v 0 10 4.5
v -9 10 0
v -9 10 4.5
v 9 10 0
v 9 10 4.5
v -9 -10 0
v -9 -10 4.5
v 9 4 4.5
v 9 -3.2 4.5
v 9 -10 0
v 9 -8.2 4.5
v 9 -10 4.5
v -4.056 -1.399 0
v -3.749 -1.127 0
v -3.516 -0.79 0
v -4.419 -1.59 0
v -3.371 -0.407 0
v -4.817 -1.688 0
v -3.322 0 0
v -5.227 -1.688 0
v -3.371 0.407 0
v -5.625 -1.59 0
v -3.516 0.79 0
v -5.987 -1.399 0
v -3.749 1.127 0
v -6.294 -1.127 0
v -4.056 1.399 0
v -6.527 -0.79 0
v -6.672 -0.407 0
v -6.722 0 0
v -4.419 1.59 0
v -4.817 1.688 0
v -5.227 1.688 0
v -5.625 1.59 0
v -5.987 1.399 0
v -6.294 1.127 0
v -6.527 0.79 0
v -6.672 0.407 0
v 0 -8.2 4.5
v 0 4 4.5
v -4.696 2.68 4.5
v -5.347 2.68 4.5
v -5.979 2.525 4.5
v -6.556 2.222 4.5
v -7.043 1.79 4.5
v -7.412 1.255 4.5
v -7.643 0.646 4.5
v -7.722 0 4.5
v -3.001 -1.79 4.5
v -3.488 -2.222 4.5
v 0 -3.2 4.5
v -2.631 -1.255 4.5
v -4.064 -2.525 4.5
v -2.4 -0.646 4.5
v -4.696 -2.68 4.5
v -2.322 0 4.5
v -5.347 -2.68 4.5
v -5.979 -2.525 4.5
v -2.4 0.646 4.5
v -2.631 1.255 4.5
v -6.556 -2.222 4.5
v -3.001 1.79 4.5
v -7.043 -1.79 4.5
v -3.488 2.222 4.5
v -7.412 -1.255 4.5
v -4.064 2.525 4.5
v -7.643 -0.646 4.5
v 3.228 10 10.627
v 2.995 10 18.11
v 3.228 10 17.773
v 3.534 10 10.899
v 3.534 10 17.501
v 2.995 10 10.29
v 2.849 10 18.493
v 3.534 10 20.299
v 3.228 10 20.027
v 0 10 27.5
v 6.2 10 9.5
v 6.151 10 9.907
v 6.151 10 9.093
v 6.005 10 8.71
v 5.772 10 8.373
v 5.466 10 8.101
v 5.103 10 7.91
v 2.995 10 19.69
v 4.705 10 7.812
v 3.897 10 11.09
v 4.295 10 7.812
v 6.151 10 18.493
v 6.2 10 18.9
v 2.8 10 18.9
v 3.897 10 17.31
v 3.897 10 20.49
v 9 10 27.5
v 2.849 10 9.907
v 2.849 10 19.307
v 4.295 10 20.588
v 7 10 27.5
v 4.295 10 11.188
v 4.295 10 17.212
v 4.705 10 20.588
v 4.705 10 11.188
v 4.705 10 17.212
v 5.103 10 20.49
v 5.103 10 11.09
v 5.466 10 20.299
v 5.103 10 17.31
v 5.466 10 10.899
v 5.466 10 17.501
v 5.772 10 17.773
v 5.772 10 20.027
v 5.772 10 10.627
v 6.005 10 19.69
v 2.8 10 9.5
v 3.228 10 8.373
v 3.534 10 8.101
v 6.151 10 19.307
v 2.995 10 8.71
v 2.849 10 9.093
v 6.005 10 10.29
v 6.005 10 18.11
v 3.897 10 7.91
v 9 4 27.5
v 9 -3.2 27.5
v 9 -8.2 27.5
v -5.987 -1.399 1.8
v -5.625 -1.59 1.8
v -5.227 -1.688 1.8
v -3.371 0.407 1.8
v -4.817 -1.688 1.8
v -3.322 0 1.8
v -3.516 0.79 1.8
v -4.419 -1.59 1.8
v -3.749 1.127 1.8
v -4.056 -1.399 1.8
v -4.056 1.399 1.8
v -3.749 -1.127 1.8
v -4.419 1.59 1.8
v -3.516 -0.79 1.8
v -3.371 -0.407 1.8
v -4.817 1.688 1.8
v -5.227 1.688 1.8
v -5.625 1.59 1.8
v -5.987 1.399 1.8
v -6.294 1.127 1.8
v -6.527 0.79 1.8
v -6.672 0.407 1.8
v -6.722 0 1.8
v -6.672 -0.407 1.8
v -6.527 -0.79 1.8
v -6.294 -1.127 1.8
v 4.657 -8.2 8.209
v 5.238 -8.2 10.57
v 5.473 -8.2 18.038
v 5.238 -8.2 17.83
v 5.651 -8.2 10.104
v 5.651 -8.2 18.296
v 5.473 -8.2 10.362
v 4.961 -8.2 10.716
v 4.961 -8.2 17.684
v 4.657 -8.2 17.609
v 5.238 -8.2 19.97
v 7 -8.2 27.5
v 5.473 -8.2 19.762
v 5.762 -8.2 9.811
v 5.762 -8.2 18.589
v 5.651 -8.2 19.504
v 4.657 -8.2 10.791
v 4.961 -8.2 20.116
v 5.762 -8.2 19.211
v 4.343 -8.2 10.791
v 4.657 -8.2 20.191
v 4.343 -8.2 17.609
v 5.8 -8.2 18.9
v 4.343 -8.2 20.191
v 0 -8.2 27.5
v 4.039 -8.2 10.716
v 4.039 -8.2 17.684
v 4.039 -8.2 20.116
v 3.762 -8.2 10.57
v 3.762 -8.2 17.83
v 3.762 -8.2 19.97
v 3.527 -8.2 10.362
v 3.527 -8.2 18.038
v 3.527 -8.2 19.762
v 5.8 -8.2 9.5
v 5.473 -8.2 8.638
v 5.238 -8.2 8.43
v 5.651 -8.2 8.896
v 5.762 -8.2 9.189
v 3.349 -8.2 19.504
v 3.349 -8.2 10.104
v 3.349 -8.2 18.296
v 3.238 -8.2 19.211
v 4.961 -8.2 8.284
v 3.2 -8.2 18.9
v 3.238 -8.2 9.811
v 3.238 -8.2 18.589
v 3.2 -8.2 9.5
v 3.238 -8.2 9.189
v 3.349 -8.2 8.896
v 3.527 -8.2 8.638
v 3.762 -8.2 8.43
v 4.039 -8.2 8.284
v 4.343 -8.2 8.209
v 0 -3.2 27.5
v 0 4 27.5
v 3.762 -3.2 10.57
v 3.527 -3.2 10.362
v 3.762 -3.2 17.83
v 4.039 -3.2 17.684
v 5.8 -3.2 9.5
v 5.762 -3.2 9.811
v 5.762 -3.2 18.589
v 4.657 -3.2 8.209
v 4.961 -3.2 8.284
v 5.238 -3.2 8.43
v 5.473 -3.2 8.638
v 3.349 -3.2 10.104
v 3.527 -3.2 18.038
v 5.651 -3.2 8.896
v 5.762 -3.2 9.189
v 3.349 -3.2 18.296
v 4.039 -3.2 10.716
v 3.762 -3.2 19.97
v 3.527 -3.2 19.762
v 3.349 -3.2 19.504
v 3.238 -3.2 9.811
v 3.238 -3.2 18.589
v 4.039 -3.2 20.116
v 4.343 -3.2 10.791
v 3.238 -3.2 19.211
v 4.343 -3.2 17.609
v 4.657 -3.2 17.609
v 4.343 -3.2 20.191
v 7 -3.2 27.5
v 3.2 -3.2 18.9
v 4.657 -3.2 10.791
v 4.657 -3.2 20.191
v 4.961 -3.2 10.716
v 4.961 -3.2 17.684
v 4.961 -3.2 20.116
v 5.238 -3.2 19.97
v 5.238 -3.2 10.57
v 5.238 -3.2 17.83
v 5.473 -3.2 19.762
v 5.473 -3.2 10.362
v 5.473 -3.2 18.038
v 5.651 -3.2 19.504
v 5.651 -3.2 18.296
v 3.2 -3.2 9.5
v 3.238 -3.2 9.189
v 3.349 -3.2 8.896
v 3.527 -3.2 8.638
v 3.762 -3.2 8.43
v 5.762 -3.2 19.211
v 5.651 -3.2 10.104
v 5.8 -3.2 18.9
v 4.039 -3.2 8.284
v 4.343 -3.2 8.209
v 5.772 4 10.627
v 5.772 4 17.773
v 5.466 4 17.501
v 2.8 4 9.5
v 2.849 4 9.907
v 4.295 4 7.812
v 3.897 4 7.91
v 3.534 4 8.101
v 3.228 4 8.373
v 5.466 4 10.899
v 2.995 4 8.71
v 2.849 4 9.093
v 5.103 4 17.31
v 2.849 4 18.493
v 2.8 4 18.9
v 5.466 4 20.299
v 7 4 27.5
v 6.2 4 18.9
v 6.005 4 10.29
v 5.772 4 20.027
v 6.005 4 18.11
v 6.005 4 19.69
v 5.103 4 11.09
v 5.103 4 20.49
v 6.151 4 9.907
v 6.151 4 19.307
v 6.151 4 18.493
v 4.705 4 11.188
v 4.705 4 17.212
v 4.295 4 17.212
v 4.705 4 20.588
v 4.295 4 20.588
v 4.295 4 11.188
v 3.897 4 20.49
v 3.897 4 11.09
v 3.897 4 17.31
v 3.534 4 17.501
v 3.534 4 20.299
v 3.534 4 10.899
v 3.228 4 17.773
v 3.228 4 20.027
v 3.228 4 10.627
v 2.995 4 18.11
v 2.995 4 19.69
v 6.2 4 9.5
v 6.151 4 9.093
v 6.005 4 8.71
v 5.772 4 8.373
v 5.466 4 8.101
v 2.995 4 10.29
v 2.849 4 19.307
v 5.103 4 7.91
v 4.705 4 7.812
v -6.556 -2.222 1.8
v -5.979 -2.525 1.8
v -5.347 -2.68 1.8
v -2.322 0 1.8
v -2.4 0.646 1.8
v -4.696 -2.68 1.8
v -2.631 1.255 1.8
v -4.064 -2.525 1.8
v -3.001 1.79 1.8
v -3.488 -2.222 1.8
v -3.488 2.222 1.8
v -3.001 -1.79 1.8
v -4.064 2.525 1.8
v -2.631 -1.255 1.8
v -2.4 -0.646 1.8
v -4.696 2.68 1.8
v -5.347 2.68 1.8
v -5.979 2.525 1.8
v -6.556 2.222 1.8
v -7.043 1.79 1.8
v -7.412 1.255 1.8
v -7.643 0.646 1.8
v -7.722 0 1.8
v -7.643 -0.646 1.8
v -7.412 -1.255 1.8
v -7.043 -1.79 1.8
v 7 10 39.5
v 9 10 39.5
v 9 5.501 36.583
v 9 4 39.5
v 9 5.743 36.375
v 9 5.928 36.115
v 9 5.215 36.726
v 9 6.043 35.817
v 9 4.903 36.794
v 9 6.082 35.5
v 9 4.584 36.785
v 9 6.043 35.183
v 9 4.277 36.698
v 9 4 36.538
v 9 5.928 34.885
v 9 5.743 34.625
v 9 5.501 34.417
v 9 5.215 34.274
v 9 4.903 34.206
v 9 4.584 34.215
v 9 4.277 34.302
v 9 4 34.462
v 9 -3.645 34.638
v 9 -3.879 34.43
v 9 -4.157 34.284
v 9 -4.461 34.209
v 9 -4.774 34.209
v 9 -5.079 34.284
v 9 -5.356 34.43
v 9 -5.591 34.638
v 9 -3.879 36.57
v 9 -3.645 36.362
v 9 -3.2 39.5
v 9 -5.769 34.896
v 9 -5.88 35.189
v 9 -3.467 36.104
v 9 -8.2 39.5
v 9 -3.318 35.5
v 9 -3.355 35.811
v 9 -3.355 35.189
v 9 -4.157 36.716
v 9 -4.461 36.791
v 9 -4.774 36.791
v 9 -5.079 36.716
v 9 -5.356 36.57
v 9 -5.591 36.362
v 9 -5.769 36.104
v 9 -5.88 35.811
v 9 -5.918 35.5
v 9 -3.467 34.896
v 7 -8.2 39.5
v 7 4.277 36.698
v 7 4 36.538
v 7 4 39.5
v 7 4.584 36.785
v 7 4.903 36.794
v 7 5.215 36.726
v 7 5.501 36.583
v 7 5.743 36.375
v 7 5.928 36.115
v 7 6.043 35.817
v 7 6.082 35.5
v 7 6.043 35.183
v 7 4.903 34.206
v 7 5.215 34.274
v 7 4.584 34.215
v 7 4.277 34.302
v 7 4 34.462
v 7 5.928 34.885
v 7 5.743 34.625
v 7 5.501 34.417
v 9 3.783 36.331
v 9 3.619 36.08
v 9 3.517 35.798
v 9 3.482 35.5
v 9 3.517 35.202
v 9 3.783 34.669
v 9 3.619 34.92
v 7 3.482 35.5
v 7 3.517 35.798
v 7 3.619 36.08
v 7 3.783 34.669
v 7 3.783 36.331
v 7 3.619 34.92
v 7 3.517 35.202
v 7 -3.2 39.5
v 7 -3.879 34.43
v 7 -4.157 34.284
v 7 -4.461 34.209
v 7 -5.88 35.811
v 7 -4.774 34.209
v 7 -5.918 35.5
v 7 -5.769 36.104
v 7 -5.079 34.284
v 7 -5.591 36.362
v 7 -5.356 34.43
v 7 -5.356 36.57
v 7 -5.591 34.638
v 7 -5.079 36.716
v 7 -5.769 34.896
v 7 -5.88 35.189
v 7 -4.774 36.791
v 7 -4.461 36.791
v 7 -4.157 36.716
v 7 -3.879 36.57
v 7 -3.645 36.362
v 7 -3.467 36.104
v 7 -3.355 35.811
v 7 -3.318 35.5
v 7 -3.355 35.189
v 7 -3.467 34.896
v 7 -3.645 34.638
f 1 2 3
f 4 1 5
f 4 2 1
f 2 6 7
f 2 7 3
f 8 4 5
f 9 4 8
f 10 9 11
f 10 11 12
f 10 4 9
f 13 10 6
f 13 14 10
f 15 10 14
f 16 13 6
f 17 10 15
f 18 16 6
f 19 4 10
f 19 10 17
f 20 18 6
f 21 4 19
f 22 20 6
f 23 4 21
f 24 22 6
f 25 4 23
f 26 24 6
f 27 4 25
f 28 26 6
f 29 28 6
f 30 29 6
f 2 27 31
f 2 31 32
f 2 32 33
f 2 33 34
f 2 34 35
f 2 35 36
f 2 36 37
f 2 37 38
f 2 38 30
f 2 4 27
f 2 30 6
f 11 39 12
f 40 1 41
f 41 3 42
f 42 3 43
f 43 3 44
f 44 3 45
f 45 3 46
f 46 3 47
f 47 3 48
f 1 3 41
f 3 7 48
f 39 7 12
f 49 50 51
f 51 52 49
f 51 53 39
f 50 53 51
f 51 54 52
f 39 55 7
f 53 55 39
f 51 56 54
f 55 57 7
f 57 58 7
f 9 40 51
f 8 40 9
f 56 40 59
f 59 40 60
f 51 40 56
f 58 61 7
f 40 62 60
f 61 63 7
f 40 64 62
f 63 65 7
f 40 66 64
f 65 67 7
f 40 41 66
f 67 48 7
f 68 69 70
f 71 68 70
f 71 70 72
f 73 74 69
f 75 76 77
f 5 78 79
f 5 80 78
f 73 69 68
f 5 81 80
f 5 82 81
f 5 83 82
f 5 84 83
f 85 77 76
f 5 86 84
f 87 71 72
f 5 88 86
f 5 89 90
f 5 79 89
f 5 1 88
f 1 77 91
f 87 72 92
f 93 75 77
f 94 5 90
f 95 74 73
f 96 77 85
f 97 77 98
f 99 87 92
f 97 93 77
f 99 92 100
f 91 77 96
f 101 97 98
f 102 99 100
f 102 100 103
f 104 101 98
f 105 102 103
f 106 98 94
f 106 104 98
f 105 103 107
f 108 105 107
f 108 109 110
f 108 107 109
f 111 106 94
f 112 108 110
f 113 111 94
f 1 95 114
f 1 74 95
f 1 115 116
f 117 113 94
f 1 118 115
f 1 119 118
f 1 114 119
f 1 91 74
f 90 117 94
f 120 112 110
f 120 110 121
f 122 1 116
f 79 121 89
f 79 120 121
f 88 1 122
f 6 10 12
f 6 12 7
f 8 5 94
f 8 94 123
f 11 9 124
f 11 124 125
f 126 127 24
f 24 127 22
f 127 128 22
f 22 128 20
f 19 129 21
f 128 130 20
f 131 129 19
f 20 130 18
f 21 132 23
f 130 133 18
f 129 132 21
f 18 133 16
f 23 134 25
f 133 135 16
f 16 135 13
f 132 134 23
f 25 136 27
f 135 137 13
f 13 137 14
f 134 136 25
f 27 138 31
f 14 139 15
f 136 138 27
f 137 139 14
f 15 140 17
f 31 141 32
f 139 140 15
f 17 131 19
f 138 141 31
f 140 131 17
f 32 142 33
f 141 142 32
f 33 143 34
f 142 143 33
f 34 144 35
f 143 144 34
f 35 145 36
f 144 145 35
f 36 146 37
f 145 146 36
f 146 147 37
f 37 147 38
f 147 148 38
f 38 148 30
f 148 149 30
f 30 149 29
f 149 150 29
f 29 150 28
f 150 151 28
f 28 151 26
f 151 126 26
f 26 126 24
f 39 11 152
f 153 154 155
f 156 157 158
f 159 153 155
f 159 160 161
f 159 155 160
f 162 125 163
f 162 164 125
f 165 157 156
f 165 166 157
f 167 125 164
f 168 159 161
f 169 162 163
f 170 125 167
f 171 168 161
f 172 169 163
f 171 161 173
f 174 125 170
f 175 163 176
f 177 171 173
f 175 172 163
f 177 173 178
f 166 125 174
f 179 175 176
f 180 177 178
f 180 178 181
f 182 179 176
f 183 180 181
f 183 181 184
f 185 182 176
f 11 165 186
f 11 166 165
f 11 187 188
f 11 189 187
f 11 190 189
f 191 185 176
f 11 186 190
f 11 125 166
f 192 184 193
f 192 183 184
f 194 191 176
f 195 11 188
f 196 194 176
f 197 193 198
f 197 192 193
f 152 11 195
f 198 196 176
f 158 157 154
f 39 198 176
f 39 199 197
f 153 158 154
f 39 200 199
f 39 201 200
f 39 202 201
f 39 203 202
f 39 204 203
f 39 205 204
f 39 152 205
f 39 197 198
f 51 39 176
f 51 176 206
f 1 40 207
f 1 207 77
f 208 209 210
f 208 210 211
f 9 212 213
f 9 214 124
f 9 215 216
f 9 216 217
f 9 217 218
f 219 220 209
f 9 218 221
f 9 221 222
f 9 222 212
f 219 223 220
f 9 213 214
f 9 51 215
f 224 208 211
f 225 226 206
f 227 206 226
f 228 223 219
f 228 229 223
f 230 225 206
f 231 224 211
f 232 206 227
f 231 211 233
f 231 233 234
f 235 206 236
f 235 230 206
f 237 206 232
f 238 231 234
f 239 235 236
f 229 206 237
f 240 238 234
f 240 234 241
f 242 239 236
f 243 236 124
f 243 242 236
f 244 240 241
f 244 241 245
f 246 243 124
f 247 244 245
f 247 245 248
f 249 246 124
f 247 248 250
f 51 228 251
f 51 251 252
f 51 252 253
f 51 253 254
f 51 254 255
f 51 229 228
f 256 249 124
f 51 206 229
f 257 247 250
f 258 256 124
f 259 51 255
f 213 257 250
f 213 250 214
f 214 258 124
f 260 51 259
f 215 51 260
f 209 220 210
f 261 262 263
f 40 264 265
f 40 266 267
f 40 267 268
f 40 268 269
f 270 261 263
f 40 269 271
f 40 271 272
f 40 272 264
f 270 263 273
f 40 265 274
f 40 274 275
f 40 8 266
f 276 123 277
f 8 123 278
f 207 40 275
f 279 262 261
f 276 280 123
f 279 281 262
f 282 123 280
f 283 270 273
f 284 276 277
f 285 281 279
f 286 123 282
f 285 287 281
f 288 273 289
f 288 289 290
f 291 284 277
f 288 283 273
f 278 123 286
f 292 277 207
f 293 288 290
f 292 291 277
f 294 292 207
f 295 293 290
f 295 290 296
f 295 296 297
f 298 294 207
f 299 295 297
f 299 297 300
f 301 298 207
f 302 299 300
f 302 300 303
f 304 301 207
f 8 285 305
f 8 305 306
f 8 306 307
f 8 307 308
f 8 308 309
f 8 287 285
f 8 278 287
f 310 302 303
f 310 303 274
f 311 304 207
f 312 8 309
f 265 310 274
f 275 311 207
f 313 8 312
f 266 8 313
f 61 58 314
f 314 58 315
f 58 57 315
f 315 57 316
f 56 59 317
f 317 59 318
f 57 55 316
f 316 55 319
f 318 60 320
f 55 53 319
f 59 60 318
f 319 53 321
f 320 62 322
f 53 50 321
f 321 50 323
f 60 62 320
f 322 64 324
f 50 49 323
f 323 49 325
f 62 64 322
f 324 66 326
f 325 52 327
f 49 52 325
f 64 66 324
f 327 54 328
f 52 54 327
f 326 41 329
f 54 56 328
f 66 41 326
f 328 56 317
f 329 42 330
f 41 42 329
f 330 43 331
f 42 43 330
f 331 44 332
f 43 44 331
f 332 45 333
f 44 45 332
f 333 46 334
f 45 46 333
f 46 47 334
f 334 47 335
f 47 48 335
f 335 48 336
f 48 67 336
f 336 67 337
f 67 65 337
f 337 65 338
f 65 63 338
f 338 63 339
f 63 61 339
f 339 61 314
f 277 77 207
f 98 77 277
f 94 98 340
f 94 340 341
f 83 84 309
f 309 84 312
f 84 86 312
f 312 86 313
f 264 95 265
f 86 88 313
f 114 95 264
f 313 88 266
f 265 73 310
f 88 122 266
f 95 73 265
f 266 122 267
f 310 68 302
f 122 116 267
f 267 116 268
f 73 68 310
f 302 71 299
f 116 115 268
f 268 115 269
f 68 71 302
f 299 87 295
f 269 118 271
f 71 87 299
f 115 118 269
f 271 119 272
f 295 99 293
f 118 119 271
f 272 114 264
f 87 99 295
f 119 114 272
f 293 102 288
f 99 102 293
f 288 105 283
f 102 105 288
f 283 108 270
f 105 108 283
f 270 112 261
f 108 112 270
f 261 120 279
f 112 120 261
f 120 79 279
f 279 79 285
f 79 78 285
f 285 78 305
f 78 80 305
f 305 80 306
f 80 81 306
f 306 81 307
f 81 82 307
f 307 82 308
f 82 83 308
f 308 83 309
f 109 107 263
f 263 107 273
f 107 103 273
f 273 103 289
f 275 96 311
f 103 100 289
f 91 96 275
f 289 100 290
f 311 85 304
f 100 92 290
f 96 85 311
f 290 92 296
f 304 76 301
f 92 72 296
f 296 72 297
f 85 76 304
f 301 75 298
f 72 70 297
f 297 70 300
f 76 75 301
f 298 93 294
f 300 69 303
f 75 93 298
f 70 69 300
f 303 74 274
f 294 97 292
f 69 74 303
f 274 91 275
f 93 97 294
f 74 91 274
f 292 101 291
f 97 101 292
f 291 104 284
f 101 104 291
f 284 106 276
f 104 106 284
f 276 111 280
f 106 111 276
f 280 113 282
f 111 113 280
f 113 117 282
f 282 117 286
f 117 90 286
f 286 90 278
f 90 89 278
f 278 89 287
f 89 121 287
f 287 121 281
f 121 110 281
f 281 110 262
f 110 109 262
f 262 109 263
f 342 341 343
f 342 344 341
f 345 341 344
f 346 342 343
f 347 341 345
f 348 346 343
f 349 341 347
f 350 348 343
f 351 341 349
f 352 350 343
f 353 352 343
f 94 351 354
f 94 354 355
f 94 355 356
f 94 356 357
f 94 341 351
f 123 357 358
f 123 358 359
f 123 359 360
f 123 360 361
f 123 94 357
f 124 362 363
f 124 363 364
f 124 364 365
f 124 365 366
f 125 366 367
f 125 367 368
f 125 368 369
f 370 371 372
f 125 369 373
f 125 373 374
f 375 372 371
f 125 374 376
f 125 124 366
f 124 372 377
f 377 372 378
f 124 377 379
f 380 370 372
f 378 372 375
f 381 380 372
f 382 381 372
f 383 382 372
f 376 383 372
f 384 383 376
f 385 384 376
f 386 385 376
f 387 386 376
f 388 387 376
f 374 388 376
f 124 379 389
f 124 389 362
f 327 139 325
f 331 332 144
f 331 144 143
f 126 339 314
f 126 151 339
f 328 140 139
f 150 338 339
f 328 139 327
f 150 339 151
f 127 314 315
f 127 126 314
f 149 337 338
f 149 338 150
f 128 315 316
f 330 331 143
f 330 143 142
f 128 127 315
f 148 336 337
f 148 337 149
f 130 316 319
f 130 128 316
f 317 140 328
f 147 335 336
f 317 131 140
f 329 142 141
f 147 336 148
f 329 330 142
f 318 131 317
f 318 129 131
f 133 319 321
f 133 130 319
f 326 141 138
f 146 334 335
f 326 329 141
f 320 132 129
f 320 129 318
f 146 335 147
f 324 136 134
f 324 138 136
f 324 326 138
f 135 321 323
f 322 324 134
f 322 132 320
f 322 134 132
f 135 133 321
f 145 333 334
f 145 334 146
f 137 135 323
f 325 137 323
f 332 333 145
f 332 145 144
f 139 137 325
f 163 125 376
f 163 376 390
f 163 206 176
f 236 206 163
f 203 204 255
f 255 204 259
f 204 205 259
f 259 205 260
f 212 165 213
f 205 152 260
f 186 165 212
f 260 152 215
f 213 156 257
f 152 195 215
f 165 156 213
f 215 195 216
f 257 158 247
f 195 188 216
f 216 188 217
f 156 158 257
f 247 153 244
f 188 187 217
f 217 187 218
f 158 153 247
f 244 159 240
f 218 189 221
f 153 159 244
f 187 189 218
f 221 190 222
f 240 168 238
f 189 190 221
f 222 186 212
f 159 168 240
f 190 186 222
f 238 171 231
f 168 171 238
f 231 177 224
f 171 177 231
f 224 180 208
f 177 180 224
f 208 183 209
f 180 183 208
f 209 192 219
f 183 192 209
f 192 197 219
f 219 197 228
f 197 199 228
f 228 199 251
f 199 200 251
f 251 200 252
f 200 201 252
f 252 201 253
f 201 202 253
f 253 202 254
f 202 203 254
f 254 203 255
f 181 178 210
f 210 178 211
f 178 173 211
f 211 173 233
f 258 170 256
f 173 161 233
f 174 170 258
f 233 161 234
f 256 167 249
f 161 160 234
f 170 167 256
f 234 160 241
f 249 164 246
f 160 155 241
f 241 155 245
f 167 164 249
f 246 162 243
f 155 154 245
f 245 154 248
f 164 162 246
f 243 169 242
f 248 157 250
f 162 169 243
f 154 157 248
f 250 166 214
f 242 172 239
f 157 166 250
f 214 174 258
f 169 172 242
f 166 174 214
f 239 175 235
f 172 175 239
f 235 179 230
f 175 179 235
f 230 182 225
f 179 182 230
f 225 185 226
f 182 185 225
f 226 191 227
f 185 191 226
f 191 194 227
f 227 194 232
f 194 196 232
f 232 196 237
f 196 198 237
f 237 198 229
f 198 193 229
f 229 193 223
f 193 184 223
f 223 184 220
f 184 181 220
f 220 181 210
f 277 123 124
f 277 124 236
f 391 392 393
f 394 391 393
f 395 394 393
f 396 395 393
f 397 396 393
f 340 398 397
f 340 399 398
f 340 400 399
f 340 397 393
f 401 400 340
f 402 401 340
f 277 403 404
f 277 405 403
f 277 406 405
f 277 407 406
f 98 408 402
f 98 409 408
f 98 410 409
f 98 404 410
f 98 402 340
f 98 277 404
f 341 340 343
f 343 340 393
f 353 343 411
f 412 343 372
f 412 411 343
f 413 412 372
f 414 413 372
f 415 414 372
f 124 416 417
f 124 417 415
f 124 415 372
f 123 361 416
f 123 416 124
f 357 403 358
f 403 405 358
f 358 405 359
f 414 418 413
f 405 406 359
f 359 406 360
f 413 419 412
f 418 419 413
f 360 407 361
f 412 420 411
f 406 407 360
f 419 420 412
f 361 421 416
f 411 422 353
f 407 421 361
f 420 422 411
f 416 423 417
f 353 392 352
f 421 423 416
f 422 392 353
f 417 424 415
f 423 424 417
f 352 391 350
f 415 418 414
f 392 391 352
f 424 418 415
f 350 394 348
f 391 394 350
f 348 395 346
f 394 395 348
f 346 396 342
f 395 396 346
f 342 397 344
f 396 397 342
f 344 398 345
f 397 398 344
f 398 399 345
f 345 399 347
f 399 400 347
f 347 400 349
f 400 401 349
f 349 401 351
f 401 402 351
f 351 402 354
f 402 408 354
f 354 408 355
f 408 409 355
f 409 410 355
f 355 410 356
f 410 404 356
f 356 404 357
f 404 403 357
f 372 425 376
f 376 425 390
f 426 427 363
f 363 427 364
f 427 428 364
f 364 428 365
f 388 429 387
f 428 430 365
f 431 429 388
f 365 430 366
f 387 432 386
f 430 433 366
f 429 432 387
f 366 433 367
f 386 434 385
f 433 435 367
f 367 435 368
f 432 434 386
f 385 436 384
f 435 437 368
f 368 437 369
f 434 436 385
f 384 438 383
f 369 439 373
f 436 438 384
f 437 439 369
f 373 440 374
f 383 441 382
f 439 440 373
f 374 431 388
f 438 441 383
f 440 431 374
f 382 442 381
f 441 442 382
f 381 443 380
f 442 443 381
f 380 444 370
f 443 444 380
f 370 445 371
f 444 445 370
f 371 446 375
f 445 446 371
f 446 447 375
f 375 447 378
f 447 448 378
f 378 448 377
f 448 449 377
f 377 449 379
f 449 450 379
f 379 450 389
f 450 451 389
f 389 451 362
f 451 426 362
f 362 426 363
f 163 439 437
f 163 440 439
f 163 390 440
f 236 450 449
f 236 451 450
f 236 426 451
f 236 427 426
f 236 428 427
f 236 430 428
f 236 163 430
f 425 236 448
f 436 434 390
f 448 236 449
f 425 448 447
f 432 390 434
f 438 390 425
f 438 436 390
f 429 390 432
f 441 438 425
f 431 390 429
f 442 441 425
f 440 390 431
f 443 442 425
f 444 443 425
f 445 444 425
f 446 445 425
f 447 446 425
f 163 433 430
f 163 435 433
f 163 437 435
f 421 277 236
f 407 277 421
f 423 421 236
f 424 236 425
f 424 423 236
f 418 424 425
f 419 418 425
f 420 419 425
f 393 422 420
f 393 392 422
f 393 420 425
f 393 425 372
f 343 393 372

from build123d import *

# Parameters (mm, degrees)
SKETCH_W        = 18
SKETCH_H        = 20
PAD_DEPTH       = 4.5
SKETCH001_W     = 9
SKETCH001_H     = 5
PAD001_DEPTH    = 23
SKETCH002_W     = 9
SKETCH002_H     = 6
PAD002_DEPTH    = 23
SKETCH004_W     = 2
SKETCH004_H     = 6
SKETCH004_H_2   = 5
PAD003_DEPTH    = 12
SKETCH005_R     = 1.3
POCKET_DEPTH    = 25
SKETCH007_W     = 2
SKETCH007_H     = 12
PAD004_DEPTH    = 7.2
SKETCH008_R     = 1.3
POCKET001_DEPTH = 5
COPYSKETCH009_R = 1.7
POCKET002_DEPTH = 5
SKETCH010_R     = 2.7
POCKET003_DEPTH = 2.7
SKETCH011_R     = 1.7
POCKET004_DEPTH = 7


with BuildPart() as part:
    # Sketch → Pad (new body)
    with BuildSketch(Plane.XY):
        Rectangle(SKETCH_W, SKETCH_H)
    extrude(amount=PAD_DEPTH)

    # Sketch001 (on Face6 of Pad) → Pad001 (join)
    with BuildSketch(Plane.XY.offset(4.5)):
        with Locations((4.5, -5.7)):
            Rectangle(SKETCH001_W, SKETCH001_H)
    extrude(amount=PAD001_DEPTH)

    # Sketch002 (on Face5 of Pad001) → Pad002 (join)
    with BuildSketch(Plane.XY.offset(4.5)):
        with Locations((4.5, 7)):
            Rectangle(SKETCH002_W, SKETCH002_H)
    extrude(amount=PAD002_DEPTH)

    # Sketch004 (on Face15 of Pad002) → Pad003 (join)
    with BuildSketch(Plane.XY.offset(27.5)):
        with Locations((8, 7)):
            Rectangle(SKETCH004_W, SKETCH004_H)
        with Locations((8, -5.7)):
            Rectangle(SKETCH004_W, SKETCH004_H_2)
    extrude(amount=PAD003_DEPTH)

    # Sketch005 (on Face10 of Pad003) → Pocket (cut)
    with BuildSketch(Plane.XZ.offset(8.2)):
        with Locations((4.5, 18.9)):
            Circle(SKETCH005_R)
        with Locations((4.5, 9.5)):
            Circle(SKETCH005_R)
    extrude(amount=-POCKET_DEPTH, mode=Mode.SUBTRACT)

    # Sketch007 → Pad004 (join)
    with BuildSketch(Plane.XZ.offset(-4)):
        with Locations((8, 33.5)):
            Rectangle(SKETCH007_W, SKETCH007_H)
    extrude(amount=PAD004_DEPTH)

    # Sketch008 (on Face31 of Pad004) → Pocket001 (cut)
    with BuildSketch(Plane(origin=(7, 0, 0), x_dir=(0, -1, 0), z_dir=(-1, 0, 0))):
        with Locations((-4.782348, 35.5)):
            Circle(SKETCH008_R)
        with Locations((4.617652, 35.5)):
            Circle(SKETCH008_R)
    extrude(amount=-POCKET001_DEPTH, mode=Mode.SUBTRACT)

    # CopySketch009 → Pocket002 (cut)
    with BuildSketch(Plane.XY.offset(4.5)):
        with Locations((-5.02174, 0)):
            Circle(COPYSKETCH009_R)
    extrude(amount=-POCKET002_DEPTH, mode=Mode.SUBTRACT)

    # Sketch010 (on Face5 of Pocket002) → Pocket003 (cut)
    with BuildSketch(Plane.XY.offset(4.5)):
        with Locations((-5.02174, 0)):
            Circle(SKETCH010_R)
    extrude(amount=-POCKET003_DEPTH, mode=Mode.SUBTRACT)

    # Sketch011 (on Face6 of Pocket003) → Pocket004 (cut)
    with BuildSketch(Plane(origin=(0, 10, 0), x_dir=(-1, 0, 0), z_dir=(0, 1, 0))):
        with Locations((-4.5, 18.9)):
            Circle(SKETCH011_R)
        with Locations((-4.5, 9.5)):
            Circle(SKETCH011_R)
    extrude(amount=-POCKET004_DEPTH, mode=Mode.SUBTRACT)


solid = part.part
